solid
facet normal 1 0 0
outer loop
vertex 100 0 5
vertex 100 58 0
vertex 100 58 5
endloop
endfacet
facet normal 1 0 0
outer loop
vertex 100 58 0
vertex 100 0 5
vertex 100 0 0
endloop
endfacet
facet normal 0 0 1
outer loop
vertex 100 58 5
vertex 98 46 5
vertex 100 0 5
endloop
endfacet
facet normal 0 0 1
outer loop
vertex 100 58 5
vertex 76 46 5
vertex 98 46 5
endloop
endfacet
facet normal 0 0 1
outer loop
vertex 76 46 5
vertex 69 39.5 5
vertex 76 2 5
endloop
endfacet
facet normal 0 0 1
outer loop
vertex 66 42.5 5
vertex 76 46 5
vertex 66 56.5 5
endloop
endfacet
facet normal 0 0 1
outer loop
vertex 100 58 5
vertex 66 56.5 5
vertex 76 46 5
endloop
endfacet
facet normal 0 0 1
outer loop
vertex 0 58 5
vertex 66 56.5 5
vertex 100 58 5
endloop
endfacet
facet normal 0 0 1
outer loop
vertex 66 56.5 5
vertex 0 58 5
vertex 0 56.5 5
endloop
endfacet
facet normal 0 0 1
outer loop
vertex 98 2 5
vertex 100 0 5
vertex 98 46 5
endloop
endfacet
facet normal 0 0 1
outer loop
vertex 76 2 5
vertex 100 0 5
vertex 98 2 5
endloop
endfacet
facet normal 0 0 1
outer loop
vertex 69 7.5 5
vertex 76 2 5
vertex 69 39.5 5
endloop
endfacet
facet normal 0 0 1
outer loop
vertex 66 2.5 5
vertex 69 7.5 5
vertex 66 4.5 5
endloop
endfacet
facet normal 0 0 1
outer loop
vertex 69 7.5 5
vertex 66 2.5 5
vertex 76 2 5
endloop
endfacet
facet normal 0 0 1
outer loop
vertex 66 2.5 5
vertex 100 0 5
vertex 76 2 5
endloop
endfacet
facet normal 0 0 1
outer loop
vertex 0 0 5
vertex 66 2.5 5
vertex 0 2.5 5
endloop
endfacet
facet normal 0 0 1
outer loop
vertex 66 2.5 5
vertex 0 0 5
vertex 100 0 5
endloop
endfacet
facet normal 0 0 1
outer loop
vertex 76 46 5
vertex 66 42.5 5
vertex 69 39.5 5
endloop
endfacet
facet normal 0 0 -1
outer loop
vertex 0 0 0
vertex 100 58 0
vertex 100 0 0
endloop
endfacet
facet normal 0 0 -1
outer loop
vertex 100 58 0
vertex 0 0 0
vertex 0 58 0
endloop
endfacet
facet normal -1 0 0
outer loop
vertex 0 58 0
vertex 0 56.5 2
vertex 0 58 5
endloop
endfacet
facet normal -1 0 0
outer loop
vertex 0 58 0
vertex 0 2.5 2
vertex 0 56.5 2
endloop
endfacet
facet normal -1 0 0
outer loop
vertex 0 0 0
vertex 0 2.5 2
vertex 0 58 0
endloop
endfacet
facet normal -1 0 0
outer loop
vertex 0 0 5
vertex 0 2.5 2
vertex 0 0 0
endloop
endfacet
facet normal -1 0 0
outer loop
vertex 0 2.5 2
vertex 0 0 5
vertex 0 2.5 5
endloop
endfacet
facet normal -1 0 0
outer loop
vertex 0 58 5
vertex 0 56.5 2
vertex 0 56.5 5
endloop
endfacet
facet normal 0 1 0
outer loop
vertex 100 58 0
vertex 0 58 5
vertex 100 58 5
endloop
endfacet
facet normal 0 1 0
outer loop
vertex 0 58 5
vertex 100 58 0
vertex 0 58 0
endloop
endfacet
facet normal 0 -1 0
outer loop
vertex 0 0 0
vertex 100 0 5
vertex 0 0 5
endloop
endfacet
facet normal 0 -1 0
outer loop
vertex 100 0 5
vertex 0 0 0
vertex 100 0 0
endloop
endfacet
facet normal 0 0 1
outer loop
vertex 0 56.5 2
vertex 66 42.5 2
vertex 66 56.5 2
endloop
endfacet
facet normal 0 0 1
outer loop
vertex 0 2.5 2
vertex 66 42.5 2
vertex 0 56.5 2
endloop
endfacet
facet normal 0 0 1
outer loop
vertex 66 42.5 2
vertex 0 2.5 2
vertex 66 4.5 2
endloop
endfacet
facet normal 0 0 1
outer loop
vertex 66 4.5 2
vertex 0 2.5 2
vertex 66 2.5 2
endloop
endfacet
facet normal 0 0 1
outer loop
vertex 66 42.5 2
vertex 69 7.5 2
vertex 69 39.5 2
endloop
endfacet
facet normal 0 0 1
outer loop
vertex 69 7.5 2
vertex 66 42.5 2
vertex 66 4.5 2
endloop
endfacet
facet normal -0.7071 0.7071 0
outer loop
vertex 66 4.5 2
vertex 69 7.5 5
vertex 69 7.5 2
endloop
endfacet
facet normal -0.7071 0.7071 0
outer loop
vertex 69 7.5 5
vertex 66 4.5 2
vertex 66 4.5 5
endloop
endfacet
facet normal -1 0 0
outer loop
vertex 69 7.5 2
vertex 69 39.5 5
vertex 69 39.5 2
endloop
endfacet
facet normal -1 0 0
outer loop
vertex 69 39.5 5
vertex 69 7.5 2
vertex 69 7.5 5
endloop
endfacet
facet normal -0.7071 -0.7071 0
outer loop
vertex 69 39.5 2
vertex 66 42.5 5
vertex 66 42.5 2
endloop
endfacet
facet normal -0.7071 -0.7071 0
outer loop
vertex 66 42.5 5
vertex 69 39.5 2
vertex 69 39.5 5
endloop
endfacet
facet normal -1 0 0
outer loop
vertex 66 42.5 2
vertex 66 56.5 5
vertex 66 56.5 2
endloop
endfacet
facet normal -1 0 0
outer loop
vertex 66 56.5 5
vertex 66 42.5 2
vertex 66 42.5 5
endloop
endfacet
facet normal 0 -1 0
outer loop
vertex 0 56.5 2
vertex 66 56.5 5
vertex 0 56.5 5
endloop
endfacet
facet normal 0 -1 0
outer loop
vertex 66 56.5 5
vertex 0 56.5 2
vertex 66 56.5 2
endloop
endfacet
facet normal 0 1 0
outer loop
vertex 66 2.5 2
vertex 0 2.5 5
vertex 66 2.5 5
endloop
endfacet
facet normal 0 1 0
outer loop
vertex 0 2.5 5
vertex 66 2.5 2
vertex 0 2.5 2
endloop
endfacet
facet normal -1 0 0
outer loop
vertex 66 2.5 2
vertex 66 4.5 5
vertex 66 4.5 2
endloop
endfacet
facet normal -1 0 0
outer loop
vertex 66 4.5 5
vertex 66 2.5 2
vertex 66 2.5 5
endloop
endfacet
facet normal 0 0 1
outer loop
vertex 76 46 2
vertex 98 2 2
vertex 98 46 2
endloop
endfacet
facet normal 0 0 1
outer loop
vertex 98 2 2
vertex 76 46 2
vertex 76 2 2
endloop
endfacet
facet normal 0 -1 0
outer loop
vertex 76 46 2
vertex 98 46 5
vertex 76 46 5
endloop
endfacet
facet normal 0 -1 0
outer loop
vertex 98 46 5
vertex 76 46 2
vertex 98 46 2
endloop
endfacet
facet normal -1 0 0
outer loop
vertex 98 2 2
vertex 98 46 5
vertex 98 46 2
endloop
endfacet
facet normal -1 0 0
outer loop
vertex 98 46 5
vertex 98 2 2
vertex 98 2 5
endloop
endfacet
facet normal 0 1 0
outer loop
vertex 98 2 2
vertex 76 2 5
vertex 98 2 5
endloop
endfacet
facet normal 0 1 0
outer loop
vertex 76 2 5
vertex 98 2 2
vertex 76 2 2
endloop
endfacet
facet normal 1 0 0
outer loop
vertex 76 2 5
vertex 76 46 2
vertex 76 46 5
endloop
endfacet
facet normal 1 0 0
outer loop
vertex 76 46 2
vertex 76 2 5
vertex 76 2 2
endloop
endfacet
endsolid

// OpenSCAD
length = 100;
width = 58;
height = 5;
arduino_outline = [[0,0], [66,0], [66,2], [69,5], [69,37], [66,40], [66,54], [0,54]];
voltage_regulator_outline = [[0,0], [44,0], [44,22], [0,22]];
difference(){
	cube([length, width, height]);
	translate([0, (width-53)/2,2])linear_extrude(8)polygon(arduino_outline);
	translate([70,2,2])translate([28,0,0])rotate([0,0,90])linear_extrude(8)polygon(voltage_regulator_outline);
}
